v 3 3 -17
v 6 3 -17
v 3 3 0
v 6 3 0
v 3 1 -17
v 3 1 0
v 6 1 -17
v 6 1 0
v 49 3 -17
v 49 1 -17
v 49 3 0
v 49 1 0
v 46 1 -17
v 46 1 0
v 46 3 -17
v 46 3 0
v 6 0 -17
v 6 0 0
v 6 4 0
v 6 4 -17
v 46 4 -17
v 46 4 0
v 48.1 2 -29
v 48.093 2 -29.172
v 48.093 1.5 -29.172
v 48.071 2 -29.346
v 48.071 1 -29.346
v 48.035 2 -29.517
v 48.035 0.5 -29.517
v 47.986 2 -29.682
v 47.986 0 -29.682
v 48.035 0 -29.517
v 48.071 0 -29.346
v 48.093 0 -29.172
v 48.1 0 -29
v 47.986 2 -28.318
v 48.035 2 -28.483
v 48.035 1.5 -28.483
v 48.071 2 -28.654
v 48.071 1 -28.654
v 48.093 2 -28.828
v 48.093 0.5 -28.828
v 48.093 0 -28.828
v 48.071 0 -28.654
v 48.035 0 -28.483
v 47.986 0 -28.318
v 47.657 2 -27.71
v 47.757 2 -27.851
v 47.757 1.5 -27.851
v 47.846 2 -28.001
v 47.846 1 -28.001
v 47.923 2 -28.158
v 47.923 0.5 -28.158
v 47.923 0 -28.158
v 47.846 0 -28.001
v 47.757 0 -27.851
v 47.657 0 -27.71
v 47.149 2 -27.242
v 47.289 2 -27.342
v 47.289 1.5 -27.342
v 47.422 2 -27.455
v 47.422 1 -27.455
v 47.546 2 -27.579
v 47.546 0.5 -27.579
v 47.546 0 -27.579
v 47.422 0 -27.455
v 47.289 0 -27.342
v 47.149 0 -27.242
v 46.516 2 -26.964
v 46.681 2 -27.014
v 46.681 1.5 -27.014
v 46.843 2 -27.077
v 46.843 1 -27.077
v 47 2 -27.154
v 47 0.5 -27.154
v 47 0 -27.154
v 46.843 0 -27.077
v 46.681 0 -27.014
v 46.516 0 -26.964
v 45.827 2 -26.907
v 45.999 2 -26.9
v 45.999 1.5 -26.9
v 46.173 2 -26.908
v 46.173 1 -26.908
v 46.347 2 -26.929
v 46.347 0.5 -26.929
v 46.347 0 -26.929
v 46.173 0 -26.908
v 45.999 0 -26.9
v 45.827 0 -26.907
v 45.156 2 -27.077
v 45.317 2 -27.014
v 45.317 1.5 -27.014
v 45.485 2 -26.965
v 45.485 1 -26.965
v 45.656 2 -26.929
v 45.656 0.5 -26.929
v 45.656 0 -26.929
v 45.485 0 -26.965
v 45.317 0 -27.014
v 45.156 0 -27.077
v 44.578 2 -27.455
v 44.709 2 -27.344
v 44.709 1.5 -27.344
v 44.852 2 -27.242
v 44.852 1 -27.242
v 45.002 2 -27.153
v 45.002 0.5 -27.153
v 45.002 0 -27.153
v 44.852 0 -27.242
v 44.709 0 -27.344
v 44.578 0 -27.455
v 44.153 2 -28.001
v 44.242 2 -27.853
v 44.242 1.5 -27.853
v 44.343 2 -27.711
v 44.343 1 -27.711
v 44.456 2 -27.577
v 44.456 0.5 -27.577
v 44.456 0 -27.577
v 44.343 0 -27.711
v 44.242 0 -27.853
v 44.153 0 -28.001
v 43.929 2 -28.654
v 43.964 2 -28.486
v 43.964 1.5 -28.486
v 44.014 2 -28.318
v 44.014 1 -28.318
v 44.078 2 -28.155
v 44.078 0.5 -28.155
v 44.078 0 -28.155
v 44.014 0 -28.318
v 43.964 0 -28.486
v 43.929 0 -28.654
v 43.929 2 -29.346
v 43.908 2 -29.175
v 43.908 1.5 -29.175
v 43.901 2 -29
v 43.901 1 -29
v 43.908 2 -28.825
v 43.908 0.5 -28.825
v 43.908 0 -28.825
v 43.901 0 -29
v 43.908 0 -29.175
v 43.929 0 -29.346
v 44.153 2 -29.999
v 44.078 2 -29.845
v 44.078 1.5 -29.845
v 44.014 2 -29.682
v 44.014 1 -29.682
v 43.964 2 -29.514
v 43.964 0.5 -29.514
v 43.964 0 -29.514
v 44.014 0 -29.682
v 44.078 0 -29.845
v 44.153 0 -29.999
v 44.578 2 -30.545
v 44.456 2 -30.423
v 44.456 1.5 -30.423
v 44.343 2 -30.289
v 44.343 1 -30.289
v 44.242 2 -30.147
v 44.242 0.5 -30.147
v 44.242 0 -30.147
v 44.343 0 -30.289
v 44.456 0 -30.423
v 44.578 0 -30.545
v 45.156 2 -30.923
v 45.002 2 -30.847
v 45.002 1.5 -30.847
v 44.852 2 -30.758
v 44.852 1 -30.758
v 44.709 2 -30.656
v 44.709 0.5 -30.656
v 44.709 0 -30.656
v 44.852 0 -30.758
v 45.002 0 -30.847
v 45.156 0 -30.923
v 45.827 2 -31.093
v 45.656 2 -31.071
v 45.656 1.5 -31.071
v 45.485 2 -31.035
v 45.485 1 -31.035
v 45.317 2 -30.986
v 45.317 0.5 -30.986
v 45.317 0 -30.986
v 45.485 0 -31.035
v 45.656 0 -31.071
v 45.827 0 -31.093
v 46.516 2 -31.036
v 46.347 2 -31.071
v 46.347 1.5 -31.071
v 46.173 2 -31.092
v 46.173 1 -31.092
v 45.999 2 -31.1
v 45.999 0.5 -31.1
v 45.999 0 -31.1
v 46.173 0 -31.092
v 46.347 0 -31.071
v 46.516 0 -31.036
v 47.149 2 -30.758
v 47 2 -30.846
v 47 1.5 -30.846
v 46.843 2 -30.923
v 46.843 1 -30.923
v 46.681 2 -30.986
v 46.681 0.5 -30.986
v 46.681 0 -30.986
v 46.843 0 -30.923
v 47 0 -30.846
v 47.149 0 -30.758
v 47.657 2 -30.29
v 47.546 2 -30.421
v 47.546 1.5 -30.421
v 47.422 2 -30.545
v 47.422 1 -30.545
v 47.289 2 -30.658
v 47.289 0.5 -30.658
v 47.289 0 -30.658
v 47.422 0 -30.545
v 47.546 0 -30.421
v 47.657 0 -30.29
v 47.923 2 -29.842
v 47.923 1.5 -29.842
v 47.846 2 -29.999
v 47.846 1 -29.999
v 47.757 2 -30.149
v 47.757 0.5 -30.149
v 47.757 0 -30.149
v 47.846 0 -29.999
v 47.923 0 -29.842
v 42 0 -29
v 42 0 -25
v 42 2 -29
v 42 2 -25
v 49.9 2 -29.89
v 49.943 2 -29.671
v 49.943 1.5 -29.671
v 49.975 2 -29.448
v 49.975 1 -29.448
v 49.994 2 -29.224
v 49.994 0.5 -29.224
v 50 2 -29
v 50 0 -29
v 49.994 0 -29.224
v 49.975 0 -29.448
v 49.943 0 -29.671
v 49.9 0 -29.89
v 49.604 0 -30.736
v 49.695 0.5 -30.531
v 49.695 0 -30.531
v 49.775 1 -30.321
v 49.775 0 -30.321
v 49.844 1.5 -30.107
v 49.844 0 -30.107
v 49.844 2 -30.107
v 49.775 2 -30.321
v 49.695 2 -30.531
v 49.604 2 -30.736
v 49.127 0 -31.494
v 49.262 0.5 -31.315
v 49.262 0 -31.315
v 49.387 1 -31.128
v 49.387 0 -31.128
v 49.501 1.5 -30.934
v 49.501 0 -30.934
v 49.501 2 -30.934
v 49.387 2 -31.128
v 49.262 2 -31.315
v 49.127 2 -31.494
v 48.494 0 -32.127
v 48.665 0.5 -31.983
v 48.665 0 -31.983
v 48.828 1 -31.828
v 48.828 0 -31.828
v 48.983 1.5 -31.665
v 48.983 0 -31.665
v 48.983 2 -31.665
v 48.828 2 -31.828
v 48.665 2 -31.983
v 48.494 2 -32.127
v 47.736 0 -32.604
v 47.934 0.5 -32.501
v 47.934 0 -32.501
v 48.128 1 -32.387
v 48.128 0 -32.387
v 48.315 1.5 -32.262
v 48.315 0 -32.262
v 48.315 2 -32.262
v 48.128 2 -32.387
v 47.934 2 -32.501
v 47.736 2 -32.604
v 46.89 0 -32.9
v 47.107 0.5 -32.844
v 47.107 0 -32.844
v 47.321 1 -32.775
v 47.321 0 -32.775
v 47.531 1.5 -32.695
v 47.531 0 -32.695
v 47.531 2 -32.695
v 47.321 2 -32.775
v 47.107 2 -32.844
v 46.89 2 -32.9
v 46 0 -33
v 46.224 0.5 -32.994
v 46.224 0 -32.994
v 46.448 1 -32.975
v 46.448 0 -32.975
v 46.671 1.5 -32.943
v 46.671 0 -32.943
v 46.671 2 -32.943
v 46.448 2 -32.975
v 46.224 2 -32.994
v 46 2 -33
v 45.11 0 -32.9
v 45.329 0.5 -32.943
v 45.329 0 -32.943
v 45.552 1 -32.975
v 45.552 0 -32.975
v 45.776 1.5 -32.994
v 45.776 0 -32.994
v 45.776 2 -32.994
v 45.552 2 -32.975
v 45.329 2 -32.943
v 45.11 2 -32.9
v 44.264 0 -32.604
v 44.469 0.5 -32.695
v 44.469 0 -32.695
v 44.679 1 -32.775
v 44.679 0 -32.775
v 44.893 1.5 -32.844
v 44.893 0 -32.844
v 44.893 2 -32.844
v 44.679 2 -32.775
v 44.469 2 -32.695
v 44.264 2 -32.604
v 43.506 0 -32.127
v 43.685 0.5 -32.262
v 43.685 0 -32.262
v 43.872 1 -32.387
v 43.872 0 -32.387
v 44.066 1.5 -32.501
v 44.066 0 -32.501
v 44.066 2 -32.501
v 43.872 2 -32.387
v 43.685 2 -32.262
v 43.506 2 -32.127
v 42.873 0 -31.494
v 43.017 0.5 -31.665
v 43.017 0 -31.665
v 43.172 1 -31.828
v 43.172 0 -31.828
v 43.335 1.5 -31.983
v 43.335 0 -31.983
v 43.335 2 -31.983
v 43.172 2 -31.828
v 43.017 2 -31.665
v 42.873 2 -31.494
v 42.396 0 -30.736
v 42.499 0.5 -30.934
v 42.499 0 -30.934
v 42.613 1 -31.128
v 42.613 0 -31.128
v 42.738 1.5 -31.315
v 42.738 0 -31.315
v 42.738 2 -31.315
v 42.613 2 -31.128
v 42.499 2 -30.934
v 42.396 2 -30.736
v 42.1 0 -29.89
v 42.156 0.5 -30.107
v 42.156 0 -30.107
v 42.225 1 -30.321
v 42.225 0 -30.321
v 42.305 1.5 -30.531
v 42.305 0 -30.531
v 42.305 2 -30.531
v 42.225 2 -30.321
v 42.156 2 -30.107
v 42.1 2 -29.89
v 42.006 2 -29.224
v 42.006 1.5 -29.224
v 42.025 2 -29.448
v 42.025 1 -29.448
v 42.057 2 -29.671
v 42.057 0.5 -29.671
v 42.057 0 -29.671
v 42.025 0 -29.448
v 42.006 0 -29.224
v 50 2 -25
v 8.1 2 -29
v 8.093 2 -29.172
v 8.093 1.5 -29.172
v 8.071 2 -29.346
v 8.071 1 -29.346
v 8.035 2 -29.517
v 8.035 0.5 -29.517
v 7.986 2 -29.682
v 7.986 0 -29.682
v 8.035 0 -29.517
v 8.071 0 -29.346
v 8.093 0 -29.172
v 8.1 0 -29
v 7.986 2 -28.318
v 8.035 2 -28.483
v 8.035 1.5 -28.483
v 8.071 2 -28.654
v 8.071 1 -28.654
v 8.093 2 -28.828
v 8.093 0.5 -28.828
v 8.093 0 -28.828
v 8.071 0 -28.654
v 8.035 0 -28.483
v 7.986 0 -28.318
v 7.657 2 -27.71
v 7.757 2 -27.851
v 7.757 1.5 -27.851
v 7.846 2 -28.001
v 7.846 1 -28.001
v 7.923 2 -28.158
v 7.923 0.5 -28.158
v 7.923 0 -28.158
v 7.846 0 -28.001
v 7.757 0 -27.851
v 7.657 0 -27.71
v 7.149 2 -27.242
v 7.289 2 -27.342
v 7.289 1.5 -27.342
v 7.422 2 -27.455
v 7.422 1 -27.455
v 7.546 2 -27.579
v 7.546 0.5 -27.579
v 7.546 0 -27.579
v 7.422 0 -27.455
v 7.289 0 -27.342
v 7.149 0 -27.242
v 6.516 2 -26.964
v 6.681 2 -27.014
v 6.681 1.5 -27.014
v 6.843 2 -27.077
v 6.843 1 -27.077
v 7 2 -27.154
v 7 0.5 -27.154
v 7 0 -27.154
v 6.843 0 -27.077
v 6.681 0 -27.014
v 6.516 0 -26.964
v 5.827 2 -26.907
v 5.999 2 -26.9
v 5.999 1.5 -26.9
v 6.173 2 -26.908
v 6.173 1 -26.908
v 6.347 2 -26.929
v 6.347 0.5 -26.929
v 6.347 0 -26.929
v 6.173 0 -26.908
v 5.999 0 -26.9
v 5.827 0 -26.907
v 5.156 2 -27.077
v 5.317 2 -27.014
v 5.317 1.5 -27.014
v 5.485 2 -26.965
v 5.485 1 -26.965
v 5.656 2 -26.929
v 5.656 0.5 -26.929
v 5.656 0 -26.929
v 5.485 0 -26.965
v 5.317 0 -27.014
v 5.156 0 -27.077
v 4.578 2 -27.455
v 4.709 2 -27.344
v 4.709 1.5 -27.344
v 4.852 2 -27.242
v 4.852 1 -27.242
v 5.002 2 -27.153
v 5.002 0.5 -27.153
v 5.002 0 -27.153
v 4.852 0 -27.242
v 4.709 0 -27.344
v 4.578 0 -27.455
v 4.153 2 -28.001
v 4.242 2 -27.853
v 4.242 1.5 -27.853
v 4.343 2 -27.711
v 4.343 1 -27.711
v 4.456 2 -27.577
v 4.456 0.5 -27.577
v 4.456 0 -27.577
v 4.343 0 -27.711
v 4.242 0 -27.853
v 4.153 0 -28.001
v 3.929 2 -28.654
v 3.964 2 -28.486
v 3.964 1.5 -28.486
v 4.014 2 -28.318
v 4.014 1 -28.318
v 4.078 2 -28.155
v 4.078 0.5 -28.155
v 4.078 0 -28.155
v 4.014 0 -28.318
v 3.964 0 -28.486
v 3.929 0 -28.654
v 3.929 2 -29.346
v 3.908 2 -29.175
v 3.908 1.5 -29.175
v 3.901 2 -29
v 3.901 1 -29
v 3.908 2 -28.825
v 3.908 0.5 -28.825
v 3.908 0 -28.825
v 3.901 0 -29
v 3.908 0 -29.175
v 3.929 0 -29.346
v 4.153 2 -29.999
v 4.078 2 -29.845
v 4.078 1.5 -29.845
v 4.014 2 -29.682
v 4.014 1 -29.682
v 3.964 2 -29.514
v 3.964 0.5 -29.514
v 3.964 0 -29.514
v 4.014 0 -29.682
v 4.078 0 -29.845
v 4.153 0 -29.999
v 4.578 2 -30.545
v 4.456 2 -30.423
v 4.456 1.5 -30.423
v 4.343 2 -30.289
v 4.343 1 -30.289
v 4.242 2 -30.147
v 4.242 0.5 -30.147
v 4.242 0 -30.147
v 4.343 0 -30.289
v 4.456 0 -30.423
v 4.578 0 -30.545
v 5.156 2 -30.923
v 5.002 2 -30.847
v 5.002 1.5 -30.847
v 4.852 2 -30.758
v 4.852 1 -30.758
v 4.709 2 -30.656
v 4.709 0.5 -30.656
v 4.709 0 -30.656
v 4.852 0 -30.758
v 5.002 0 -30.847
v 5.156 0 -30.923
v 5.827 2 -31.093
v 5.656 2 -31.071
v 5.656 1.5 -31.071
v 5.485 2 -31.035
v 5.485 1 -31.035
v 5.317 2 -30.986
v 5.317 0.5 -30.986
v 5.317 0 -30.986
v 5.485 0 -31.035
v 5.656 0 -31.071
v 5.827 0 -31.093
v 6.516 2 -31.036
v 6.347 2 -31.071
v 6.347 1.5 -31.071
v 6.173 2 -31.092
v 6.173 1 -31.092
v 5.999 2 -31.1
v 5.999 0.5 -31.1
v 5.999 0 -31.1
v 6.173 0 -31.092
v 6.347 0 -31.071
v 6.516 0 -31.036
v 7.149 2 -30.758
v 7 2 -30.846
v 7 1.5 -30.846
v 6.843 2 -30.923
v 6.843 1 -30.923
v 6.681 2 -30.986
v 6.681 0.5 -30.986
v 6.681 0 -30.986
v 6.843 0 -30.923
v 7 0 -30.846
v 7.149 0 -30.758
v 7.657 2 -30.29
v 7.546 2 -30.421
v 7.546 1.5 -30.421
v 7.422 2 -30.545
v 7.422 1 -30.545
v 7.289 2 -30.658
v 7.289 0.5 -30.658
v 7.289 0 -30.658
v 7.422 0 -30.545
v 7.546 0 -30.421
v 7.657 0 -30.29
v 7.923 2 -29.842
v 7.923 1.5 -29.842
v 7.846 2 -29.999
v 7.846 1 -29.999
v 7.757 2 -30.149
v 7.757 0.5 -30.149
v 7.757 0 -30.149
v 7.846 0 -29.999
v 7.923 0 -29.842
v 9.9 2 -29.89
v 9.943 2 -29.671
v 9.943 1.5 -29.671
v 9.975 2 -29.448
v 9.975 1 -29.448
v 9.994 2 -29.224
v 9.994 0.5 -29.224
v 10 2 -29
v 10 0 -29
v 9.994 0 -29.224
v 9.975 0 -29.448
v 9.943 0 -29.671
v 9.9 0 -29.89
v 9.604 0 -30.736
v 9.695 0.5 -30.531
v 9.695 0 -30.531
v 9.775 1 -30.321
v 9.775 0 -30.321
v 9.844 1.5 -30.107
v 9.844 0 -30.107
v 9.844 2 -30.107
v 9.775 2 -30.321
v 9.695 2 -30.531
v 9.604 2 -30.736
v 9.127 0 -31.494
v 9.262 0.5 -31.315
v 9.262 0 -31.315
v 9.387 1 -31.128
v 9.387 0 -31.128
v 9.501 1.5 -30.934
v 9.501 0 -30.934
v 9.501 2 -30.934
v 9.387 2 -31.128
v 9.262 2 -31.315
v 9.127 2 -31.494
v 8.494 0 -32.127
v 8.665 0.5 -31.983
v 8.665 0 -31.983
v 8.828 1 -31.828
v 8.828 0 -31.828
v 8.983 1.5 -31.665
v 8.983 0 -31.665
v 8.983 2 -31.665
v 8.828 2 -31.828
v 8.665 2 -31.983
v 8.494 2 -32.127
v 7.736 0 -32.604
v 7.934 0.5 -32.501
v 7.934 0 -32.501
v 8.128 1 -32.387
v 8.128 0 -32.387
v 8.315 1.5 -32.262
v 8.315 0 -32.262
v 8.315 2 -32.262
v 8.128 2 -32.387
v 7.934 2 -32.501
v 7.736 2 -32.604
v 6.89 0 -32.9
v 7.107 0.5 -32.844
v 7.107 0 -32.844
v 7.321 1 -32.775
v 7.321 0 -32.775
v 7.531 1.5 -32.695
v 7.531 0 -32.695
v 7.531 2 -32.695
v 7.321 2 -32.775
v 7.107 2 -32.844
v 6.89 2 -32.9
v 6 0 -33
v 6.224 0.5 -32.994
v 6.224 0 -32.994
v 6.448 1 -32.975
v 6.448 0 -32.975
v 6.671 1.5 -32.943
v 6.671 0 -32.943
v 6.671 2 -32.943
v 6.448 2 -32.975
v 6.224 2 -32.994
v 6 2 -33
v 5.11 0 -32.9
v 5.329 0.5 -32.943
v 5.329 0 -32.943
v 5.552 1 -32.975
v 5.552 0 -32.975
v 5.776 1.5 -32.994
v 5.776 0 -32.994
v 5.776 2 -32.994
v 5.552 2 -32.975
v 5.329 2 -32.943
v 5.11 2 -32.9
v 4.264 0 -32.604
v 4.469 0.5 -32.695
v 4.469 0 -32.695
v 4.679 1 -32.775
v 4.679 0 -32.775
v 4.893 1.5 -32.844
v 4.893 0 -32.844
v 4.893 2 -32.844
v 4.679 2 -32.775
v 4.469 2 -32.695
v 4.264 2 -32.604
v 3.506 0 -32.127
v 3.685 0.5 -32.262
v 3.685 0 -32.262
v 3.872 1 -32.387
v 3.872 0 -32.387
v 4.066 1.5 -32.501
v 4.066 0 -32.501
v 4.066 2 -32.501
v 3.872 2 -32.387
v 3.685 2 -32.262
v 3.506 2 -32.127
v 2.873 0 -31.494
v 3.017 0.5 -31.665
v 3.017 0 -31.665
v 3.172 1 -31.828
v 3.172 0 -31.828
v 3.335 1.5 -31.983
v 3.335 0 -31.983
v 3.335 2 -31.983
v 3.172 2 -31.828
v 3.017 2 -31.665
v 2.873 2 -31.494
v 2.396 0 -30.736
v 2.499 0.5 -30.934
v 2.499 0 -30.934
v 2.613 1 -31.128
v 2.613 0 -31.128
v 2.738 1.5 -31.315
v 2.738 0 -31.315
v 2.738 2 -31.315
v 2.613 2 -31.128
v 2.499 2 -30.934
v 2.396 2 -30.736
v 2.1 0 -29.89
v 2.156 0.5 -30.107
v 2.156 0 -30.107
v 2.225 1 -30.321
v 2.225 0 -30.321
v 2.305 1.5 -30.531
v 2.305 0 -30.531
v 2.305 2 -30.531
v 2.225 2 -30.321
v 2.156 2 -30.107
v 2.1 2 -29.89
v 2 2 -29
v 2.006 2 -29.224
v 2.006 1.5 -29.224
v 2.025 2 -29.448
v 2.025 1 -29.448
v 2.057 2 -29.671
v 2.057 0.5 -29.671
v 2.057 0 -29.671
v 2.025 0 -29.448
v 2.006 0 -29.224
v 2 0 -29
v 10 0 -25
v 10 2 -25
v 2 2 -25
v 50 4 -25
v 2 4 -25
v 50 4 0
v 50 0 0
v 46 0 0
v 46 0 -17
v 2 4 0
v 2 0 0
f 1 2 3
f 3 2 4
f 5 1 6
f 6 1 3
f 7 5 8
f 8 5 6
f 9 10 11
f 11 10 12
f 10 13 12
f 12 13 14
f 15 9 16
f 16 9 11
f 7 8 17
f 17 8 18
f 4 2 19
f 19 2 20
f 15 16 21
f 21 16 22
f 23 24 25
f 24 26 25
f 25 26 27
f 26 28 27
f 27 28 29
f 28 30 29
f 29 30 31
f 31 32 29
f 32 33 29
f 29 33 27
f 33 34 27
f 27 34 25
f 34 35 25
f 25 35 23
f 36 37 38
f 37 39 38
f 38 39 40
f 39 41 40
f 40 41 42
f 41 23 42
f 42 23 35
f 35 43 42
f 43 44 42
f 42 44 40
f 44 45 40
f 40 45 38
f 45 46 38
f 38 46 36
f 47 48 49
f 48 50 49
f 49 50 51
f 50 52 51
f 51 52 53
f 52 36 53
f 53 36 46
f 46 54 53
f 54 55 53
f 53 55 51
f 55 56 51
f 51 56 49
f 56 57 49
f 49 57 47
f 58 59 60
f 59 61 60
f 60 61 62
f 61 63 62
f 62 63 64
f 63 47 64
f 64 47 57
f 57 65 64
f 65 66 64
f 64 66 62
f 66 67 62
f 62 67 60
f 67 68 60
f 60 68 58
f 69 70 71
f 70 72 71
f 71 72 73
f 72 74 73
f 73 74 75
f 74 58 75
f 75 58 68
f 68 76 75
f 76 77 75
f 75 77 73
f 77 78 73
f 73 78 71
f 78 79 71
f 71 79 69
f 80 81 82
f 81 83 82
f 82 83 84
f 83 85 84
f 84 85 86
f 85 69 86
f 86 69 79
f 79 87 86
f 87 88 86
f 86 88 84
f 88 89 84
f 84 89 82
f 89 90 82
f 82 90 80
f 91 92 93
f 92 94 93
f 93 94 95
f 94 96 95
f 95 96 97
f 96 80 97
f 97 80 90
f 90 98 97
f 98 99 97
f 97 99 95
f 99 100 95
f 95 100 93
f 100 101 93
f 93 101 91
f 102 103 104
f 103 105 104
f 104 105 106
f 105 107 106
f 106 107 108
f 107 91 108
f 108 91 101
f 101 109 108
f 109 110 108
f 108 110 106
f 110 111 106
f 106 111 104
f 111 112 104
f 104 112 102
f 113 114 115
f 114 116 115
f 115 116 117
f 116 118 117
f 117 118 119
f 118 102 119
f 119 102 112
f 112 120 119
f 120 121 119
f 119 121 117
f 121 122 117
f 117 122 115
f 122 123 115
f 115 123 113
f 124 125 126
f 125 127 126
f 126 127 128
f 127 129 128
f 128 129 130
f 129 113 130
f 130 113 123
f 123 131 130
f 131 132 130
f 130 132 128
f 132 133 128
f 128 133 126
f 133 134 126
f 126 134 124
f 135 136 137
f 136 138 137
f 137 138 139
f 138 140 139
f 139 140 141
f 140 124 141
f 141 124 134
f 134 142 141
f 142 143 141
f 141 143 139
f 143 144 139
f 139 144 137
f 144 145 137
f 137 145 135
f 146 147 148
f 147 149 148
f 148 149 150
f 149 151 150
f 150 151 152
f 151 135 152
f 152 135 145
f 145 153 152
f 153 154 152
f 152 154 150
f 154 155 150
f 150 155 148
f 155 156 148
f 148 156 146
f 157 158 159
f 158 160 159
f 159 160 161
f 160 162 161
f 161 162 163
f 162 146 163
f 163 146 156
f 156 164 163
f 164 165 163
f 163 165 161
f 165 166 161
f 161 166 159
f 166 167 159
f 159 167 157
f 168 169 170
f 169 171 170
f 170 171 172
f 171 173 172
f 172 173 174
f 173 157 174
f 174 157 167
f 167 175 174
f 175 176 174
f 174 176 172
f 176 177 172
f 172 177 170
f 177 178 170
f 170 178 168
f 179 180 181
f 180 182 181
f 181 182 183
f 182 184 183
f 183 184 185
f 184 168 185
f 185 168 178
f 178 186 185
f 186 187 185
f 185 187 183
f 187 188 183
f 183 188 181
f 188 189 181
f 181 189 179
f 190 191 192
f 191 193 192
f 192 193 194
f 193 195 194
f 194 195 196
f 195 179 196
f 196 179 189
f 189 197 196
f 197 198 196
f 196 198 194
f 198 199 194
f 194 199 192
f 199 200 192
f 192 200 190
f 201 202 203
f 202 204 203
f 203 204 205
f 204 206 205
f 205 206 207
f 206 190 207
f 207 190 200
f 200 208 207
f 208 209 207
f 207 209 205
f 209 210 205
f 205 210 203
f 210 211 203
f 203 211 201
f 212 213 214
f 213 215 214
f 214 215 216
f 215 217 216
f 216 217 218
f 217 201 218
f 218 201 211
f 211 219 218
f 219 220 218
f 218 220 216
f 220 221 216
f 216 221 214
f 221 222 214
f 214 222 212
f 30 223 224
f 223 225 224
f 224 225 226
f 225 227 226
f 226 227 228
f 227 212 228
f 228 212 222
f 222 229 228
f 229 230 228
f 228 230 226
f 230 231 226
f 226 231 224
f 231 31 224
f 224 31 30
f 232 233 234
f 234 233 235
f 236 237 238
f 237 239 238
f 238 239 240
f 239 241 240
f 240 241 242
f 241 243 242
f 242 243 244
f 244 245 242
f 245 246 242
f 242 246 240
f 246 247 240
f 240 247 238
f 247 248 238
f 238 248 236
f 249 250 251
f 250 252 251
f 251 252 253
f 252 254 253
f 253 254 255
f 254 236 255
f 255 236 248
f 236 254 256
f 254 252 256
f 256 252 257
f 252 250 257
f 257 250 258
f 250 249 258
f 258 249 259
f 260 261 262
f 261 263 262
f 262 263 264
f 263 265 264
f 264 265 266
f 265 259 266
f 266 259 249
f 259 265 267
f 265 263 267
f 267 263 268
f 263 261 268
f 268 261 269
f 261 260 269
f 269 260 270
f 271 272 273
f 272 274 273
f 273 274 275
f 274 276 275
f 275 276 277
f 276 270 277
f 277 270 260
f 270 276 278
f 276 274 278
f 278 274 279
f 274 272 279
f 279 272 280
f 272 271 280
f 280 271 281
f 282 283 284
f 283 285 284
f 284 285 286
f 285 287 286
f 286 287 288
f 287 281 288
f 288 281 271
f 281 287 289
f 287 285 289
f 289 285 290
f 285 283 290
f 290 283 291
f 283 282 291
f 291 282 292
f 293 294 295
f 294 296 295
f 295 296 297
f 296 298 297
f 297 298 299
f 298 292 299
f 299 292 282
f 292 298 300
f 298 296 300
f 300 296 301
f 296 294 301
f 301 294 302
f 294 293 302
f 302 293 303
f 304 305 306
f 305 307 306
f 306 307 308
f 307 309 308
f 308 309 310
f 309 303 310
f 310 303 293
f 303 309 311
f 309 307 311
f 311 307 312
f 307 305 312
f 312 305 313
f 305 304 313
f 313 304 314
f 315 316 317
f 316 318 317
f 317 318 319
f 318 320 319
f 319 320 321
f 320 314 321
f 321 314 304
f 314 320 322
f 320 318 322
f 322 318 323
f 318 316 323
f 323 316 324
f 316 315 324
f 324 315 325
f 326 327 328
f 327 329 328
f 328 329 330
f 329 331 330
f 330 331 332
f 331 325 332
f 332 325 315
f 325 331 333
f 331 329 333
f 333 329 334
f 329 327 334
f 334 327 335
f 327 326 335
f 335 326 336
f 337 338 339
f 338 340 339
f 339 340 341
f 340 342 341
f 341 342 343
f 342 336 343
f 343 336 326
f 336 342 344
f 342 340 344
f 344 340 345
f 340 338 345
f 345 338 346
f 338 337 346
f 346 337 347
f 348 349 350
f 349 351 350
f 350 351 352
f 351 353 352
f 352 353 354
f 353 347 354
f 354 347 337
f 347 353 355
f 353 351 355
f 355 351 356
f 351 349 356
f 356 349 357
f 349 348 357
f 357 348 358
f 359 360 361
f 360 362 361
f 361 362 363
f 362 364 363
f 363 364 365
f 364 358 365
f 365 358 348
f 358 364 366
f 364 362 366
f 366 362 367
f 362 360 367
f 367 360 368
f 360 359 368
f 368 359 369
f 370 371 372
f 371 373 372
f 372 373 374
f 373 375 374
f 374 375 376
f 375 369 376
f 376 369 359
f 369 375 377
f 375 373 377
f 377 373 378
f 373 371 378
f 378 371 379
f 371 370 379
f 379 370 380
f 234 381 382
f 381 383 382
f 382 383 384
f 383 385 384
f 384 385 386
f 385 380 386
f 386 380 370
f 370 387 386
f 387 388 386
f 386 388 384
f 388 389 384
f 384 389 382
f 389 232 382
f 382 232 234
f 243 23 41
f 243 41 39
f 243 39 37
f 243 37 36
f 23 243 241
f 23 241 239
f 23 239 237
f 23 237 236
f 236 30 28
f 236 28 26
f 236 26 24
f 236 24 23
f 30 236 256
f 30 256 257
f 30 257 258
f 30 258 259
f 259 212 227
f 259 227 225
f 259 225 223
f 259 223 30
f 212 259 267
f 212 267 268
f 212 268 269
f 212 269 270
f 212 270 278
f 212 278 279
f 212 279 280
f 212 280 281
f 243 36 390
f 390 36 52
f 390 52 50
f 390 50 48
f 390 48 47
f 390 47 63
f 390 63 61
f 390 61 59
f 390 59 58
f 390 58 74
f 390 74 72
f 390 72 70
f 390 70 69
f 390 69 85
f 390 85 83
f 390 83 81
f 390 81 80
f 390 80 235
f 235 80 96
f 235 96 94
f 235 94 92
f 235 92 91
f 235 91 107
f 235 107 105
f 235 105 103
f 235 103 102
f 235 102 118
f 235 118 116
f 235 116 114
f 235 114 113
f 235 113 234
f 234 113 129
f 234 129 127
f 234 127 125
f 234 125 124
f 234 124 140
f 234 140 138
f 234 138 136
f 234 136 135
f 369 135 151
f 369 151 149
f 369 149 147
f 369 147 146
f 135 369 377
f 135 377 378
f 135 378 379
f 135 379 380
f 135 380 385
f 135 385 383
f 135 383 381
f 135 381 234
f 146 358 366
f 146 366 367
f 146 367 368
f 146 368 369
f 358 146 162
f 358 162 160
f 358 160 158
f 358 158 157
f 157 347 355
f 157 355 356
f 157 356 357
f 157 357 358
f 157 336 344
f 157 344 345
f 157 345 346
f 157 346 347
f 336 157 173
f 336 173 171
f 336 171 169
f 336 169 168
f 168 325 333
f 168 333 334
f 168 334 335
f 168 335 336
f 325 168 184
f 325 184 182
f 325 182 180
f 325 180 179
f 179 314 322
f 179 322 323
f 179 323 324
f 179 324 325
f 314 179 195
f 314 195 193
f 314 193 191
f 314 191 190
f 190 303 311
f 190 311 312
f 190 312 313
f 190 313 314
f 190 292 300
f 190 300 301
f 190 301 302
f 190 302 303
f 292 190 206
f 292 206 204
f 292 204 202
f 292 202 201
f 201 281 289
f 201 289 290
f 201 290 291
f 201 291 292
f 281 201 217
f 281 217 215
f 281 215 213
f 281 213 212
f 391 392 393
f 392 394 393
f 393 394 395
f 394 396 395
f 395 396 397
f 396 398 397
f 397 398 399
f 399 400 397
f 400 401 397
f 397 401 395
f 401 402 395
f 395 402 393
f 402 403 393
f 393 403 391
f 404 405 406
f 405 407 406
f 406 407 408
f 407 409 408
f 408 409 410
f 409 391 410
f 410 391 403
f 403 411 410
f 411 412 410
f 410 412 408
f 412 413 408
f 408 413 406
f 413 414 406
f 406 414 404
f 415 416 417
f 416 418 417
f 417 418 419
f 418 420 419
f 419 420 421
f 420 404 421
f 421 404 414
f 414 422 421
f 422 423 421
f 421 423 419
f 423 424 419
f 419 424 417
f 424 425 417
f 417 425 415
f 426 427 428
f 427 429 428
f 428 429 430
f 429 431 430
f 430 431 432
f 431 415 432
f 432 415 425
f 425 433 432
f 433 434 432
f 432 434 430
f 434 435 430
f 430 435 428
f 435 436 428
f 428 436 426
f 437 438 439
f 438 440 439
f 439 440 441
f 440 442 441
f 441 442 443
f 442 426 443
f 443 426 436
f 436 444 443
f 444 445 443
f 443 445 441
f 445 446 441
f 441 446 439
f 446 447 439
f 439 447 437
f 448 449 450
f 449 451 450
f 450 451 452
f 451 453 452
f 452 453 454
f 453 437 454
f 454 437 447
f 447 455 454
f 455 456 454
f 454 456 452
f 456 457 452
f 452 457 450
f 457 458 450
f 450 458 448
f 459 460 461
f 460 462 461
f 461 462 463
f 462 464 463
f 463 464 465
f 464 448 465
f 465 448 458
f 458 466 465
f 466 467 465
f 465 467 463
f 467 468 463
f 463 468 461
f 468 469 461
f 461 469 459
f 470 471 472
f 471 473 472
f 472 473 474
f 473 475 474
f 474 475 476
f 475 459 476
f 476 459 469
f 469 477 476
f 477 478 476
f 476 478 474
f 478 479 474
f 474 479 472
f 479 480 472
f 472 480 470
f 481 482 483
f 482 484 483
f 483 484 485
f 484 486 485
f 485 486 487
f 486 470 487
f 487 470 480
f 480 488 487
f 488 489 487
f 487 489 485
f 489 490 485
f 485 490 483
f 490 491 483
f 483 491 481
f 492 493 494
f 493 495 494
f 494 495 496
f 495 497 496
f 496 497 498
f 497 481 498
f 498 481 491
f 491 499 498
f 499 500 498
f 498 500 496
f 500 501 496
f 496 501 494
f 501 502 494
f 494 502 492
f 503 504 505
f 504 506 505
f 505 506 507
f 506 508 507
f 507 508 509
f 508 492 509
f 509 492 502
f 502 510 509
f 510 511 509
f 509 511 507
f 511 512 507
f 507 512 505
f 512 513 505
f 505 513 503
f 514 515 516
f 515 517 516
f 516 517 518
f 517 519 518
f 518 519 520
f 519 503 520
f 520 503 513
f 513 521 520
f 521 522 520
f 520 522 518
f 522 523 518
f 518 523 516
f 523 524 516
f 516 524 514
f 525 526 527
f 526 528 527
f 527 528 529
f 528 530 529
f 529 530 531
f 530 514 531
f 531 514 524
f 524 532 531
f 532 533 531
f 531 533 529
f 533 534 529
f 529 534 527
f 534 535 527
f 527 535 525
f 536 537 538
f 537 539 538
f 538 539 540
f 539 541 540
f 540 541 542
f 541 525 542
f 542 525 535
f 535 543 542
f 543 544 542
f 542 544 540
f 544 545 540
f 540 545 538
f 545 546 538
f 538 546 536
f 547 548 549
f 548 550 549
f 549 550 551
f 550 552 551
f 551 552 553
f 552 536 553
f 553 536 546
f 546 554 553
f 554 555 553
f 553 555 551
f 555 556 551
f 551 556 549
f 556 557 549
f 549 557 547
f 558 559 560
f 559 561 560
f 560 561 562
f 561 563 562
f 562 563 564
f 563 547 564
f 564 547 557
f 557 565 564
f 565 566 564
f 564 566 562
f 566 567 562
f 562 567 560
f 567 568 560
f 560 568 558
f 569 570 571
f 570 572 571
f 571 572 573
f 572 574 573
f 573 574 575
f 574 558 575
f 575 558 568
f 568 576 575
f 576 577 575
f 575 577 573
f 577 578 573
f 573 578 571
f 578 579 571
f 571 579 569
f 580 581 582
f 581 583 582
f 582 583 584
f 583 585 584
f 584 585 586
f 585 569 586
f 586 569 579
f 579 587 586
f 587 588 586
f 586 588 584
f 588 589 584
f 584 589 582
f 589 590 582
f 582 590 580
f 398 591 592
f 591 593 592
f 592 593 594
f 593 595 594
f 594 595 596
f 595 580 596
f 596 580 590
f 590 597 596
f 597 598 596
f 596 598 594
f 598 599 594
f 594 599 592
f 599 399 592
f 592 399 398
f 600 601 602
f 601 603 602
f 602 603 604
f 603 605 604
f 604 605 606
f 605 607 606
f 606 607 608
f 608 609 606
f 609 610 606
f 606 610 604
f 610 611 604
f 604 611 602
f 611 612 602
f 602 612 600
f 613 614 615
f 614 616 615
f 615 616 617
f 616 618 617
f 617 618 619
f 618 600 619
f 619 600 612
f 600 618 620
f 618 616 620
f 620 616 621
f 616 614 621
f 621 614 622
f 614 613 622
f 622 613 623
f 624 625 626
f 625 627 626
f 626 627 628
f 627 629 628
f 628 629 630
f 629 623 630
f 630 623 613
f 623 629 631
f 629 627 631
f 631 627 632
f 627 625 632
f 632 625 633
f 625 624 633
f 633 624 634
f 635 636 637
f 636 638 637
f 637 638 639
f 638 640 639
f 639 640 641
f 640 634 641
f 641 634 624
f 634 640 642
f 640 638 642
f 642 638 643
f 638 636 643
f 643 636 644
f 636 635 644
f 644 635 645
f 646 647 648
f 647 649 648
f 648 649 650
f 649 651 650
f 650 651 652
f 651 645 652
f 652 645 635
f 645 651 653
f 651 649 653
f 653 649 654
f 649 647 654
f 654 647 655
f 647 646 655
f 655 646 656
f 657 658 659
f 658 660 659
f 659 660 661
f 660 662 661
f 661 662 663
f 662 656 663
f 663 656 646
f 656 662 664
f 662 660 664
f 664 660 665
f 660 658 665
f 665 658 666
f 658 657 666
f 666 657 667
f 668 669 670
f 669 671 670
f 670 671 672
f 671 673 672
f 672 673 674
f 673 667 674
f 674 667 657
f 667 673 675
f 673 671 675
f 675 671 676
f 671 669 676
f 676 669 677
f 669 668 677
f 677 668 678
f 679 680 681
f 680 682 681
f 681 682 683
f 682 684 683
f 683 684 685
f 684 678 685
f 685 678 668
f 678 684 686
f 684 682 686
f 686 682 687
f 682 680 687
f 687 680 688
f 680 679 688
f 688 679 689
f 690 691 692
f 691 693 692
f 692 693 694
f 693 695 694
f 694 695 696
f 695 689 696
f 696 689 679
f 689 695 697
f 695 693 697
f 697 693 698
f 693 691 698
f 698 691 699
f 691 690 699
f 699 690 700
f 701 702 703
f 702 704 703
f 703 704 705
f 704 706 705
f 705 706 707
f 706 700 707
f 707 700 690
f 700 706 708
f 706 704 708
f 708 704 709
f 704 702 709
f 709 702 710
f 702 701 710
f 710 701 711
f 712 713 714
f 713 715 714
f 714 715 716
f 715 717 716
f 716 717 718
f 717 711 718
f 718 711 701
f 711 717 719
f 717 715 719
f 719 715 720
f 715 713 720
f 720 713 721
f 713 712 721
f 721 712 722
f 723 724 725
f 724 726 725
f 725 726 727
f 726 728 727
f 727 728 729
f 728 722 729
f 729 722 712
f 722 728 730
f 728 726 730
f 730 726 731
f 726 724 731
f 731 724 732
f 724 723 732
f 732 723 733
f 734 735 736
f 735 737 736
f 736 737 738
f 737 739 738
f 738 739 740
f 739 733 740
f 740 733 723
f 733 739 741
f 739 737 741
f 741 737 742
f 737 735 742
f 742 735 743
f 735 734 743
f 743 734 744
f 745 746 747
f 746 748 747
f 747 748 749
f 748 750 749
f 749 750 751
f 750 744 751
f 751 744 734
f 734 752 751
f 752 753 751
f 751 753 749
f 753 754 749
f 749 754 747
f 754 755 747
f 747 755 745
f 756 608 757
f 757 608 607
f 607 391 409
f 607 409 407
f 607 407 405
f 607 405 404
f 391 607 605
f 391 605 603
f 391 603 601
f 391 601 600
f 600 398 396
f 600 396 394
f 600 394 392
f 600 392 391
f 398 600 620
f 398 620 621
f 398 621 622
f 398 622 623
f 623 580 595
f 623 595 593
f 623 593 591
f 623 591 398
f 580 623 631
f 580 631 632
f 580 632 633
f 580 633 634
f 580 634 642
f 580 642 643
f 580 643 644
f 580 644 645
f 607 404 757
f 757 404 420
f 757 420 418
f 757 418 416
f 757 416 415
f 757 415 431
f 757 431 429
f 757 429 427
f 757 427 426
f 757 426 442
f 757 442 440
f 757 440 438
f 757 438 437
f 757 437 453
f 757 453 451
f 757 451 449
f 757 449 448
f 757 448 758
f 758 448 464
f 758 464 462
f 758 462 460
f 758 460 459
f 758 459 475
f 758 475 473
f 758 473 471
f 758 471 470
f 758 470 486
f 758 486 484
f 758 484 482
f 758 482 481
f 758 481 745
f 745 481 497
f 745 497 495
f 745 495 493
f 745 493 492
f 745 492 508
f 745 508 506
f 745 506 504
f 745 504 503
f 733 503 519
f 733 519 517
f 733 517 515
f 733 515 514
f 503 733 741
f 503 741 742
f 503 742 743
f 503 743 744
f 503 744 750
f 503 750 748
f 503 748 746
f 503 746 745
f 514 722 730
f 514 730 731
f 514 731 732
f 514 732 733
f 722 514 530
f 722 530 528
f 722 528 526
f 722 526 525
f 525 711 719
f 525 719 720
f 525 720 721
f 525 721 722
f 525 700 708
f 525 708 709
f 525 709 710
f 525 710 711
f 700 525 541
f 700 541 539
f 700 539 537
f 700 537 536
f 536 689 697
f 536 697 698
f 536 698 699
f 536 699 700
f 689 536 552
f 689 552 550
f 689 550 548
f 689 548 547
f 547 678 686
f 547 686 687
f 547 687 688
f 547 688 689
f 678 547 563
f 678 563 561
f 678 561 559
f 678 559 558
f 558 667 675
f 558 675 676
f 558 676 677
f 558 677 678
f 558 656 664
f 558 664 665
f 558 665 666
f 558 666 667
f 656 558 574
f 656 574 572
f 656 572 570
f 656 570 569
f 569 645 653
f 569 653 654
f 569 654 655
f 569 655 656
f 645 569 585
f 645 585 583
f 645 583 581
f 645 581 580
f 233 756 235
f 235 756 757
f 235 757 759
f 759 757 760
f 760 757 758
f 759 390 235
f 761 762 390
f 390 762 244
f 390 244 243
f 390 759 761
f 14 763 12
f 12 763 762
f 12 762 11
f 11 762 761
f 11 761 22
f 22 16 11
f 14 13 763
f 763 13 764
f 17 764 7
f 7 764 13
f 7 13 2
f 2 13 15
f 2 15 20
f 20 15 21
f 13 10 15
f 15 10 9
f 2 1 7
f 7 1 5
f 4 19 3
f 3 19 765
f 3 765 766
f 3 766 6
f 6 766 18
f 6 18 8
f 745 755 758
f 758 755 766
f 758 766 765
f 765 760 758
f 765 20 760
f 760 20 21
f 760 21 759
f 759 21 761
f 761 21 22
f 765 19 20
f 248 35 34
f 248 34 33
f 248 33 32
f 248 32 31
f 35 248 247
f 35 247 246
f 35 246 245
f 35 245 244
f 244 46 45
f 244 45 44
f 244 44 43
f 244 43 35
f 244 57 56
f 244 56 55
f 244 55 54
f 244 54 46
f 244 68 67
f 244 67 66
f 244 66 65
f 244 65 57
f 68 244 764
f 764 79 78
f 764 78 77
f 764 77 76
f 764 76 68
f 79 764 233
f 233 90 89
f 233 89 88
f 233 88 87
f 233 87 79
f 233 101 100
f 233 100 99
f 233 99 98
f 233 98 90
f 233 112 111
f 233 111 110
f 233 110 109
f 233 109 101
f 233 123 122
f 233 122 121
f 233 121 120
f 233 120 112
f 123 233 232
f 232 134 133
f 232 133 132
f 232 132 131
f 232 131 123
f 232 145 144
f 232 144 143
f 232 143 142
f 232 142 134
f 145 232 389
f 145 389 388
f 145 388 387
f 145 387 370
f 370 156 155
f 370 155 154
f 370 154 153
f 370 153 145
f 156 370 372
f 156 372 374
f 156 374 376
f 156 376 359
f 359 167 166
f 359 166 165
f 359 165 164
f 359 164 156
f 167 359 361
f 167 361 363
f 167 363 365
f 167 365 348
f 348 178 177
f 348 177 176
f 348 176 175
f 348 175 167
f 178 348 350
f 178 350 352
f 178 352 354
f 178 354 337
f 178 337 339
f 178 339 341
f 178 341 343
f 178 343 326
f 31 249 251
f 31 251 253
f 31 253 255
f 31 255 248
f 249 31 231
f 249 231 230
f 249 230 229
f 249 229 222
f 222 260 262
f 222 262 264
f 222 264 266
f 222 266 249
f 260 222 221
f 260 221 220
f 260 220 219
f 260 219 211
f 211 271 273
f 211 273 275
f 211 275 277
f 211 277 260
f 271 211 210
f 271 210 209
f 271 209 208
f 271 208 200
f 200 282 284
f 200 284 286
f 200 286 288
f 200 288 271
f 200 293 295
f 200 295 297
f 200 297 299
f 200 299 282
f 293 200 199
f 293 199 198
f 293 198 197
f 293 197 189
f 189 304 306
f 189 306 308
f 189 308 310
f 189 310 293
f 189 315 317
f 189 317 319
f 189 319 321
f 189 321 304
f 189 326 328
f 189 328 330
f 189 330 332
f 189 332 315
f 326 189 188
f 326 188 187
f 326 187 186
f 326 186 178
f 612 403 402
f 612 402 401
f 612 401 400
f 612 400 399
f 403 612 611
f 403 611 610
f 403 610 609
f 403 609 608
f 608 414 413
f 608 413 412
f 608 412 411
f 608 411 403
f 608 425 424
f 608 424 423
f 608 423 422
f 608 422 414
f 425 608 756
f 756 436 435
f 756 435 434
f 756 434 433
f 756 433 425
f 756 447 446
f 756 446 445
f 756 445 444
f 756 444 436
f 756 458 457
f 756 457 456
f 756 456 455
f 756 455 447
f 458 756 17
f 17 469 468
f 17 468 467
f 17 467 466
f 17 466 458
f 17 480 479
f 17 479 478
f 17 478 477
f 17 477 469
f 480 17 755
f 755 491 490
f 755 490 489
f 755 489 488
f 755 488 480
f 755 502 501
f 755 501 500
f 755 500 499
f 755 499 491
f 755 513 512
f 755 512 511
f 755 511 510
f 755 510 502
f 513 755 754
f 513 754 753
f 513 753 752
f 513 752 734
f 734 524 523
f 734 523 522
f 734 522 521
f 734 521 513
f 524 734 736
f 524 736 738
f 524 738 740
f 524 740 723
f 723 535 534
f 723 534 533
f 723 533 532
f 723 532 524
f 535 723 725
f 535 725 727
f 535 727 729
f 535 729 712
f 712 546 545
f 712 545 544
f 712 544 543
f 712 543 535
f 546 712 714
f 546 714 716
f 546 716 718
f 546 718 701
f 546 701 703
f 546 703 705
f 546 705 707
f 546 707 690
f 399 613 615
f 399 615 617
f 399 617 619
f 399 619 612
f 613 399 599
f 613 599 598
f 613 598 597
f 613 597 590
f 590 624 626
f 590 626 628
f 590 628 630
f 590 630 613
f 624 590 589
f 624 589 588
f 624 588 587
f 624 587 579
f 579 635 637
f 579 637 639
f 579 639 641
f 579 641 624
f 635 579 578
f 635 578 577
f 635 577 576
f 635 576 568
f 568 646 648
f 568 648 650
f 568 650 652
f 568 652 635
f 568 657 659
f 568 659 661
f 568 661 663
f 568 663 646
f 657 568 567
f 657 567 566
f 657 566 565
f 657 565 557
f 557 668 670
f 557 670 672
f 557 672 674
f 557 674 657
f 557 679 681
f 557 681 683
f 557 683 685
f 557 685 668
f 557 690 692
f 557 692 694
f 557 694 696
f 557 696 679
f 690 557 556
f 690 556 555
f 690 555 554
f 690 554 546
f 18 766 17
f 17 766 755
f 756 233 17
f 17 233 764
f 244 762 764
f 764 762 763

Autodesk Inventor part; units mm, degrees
ref_plane "YZ Plane" through (0, 0, 0) normal (1, 0, 0) x (0, 1, 0)
ref_plane "XZ Plane" through (0, 0, 0) normal (0, 1, 0) x (-1, 0, 0)
sketch "Sketch1" plane through (0, 0, 0) normal (0, 1, 0) x (-1, 0, 0)
  line L0 (-2, -25) -> (-50, -25)
  line L1 (-50, -25) -> (-50, 0)
  line L2 (-2, 0) -> (-2, -25)
  line L3 (0, 0) -> (-2, 0)
  line L4 (-46, 0) -> (-50, 0)
  line L5 (-6, -17) -> (-46, -17)
  line L6 (-46, -17) -> (-46, 0)
  line L7 (-6, 0) -> (-6, -17)
  line L8 (-2, 0) -> (-6, 0)
  line L9 (-50, 0) -> (-46, 0)
  line L10 (-2, 0) -> (0, 0)
  dimension "d3" = 48
  dimension "d4" = 40
  dimension "d7" = 4
  dimension "d8" = 4
  dimension "d10" = 25
  dimension "d12" = 17
extrude "Extrusion1" add sketch "Sketch1" along normal blind 4
sketch "Sketch2" plane through (0, 0, 0) normal (0, -1, 0) x (1, 0, 0)
  circle A0 centre (6, -29) radius 2.1
  arc A1 (2, -29) -> (10, -29) centre (6, -29) ccw
  line L0 (50, -25) -> (2, -25) projected
  line L1 (2, -25) -> (2, 0) projected
  line L2 (2, -25) -> (2, -29)
  line L3 (10, -29) -> (10, -25)
  circle A2 centre (46, -29) radius 2.1
  arc A3 (42, -29) -> (50, -29) centre (46, -29) ccw
  line L4 (50, 0) -> (50, -25) projected
  line L5 (50, -25) -> (50, -29)
  line L6 (42, -29) -> (42, -25)
  point P0 (0, 0)
  dimension "d13" = 4.2
  dimension "d14" = 8
  dimension "d15" = 4
  dimension "d16" = 4
  dimension "d17" = 4.2
  dimension "d18" = 8
  dimension "d19" = 4
  dimension "d20" = 4
extrude "Extrusion2" add sketch "Sketch2" against normal blind 2
ref_plane "Work Plane1" through (2, 0, 0) normal (0, 0, 1) x (1, 0, 0)
sketch "Sketch3" plane through (2, 0, 0) normal (0, 0, 1) x (1, 0, 0)
  line L0 (0, 0) -> (4, 0) projected
  line L1 (4, 0) -> (4, 4) projected
  line L2 (0, 4) -> (4, 4) projected
  line L3 (0, 0) -> (0, 4) projected
  line L4 (44, 0) -> (48, 0) projected
  line L5 (48, 0) -> (48, 4) projected
  line L6 (44, 4) -> (48, 4) projected
  line L7 (44, 0) -> (44, 4) projected
  line L8 (1, 3) -> (4, 3)
  line L9 (4, 3) -> (4, 1)
  line L10 (4, 1) -> (1, 1)
  line L11 (1, 1) -> (1, 3)
  line L12 (44, 3) -> (47, 3)
  line L13 (47, 3) -> (47, 1)
  line L14 (47, 1) -> (44, 1)
  line L15 (44, 1) -> (44, 3)
  point P0 (-2, 0)
  dimension "d24" = 3
  dimension "d25" = 2
  dimension "d26" = 1
  dimension "d27" = 0
  dimension "d28" = 3
  dimension "d29" = 2
  dimension "d30" = 1
  dimension "d31" = 0
extrude "Extrusion3" cut sketch "Sketch3" against normal up to surface (17 mm away) contours L10 L11 L8 L1 | L7 L12 L13 L14
properties part number "Electronics-Wedge-small"
